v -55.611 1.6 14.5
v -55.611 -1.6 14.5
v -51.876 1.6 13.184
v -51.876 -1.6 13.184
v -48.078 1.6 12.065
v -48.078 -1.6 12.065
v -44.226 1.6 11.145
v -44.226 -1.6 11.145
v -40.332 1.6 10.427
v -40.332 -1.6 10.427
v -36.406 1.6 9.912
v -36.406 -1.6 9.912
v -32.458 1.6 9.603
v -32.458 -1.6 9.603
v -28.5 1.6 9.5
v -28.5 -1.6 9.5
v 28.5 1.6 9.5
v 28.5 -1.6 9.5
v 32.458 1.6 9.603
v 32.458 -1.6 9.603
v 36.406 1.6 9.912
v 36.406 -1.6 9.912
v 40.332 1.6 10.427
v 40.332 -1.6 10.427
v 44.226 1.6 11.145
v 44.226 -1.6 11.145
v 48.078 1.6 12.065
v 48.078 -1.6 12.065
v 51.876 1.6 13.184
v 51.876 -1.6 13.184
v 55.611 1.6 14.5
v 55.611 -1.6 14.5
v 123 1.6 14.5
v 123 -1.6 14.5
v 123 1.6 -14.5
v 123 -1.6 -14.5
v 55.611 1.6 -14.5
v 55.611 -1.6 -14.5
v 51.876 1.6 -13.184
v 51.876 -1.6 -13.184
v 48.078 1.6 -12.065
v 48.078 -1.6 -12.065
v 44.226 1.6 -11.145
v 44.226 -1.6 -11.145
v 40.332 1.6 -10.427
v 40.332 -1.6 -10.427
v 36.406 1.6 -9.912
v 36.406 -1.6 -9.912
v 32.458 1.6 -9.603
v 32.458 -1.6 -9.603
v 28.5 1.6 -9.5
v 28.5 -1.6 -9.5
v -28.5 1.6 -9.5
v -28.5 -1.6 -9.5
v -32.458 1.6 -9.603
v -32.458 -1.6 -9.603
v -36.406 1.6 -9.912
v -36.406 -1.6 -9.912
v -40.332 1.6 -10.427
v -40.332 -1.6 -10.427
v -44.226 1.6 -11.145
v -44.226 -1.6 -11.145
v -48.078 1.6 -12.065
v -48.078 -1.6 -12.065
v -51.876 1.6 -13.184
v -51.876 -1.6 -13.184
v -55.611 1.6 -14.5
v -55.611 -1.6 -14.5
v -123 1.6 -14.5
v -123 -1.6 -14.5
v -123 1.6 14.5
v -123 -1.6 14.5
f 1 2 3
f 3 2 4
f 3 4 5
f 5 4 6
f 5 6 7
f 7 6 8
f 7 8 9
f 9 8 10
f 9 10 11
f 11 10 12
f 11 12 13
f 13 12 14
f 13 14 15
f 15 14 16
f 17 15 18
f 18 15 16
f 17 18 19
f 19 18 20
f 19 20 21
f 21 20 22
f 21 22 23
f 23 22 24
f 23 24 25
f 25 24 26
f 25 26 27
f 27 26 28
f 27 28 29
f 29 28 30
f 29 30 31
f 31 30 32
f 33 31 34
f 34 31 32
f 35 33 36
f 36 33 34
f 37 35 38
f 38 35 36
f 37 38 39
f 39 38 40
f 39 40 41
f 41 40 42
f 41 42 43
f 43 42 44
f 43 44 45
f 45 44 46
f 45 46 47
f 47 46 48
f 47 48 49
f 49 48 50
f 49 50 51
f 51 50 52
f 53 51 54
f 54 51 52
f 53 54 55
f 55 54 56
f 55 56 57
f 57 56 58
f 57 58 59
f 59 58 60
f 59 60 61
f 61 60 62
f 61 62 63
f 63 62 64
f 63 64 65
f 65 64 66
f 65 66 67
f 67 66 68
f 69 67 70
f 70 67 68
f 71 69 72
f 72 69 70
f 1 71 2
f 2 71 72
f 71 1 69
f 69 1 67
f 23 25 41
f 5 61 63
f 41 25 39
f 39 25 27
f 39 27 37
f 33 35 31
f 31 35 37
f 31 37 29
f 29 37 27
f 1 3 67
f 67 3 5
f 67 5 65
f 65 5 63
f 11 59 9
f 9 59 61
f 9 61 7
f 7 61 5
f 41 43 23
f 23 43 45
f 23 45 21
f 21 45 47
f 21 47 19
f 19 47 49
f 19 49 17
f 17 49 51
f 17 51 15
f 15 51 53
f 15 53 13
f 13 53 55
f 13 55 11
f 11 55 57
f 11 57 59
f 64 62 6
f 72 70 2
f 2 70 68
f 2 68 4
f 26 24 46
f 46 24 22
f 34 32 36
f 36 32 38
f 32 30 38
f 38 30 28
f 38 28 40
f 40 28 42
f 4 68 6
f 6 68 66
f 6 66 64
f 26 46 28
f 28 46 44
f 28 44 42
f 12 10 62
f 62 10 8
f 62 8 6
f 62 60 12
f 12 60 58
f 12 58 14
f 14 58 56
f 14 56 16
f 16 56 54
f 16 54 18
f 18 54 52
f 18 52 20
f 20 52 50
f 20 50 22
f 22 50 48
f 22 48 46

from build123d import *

# Parameters (mm, degrees)
CROQUIS1_W              = 57
CROQUIS1_H              = 19
SALIENTE_EXTRUIR1_DEPTH = 1.6


with BuildPart() as part:
    # Croquis1 → Saliente-Extruir1 (new body, symmetric)
    with BuildSketch(Plane(origin=(0, 0, 0), x_dir=(1, 0, 0), z_dir=(0, 1, 0))):
        with BuildLine():
            Line((-123, -14.5), (-55.610883423, -14.5))
            ThreePointArc((-55.610883423, -14.5), (-42.284048752, -10.760452236), (-28.5, -9.5))
            Line((-28.5, -9.5), (-28.5, 9.5))
            ThreePointArc((-28.5, 9.5), (-42.284048752, 10.760452236), (-55.610883423, 14.5))
            Line((-55.610883423, 14.5), (-123, 14.5))
            Line((-123, 14.5), (-123, -14.5))
        make_face()
        with BuildLine():
            Line((55.610883423, -14.5), (123, -14.5))
            Line((123, -14.5), (123, 14.5))
            Line((123, 14.5), (55.610883423, 14.5))
            ThreePointArc((55.610883423, 14.5), (42.284048752, 10.760452236), (28.5, 9.5))
            Line((28.5, 9.5), (28.5, -9.5))
            ThreePointArc((28.5, -9.5), (42.284048752, -10.760452236), (55.610883423, -14.5))
        make_face()
        Rectangle(CROQUIS1_W, CROQUIS1_H)
    extrude(amount=SALIENTE_EXTRUIR1_DEPTH, both=True)


solid = part.part
